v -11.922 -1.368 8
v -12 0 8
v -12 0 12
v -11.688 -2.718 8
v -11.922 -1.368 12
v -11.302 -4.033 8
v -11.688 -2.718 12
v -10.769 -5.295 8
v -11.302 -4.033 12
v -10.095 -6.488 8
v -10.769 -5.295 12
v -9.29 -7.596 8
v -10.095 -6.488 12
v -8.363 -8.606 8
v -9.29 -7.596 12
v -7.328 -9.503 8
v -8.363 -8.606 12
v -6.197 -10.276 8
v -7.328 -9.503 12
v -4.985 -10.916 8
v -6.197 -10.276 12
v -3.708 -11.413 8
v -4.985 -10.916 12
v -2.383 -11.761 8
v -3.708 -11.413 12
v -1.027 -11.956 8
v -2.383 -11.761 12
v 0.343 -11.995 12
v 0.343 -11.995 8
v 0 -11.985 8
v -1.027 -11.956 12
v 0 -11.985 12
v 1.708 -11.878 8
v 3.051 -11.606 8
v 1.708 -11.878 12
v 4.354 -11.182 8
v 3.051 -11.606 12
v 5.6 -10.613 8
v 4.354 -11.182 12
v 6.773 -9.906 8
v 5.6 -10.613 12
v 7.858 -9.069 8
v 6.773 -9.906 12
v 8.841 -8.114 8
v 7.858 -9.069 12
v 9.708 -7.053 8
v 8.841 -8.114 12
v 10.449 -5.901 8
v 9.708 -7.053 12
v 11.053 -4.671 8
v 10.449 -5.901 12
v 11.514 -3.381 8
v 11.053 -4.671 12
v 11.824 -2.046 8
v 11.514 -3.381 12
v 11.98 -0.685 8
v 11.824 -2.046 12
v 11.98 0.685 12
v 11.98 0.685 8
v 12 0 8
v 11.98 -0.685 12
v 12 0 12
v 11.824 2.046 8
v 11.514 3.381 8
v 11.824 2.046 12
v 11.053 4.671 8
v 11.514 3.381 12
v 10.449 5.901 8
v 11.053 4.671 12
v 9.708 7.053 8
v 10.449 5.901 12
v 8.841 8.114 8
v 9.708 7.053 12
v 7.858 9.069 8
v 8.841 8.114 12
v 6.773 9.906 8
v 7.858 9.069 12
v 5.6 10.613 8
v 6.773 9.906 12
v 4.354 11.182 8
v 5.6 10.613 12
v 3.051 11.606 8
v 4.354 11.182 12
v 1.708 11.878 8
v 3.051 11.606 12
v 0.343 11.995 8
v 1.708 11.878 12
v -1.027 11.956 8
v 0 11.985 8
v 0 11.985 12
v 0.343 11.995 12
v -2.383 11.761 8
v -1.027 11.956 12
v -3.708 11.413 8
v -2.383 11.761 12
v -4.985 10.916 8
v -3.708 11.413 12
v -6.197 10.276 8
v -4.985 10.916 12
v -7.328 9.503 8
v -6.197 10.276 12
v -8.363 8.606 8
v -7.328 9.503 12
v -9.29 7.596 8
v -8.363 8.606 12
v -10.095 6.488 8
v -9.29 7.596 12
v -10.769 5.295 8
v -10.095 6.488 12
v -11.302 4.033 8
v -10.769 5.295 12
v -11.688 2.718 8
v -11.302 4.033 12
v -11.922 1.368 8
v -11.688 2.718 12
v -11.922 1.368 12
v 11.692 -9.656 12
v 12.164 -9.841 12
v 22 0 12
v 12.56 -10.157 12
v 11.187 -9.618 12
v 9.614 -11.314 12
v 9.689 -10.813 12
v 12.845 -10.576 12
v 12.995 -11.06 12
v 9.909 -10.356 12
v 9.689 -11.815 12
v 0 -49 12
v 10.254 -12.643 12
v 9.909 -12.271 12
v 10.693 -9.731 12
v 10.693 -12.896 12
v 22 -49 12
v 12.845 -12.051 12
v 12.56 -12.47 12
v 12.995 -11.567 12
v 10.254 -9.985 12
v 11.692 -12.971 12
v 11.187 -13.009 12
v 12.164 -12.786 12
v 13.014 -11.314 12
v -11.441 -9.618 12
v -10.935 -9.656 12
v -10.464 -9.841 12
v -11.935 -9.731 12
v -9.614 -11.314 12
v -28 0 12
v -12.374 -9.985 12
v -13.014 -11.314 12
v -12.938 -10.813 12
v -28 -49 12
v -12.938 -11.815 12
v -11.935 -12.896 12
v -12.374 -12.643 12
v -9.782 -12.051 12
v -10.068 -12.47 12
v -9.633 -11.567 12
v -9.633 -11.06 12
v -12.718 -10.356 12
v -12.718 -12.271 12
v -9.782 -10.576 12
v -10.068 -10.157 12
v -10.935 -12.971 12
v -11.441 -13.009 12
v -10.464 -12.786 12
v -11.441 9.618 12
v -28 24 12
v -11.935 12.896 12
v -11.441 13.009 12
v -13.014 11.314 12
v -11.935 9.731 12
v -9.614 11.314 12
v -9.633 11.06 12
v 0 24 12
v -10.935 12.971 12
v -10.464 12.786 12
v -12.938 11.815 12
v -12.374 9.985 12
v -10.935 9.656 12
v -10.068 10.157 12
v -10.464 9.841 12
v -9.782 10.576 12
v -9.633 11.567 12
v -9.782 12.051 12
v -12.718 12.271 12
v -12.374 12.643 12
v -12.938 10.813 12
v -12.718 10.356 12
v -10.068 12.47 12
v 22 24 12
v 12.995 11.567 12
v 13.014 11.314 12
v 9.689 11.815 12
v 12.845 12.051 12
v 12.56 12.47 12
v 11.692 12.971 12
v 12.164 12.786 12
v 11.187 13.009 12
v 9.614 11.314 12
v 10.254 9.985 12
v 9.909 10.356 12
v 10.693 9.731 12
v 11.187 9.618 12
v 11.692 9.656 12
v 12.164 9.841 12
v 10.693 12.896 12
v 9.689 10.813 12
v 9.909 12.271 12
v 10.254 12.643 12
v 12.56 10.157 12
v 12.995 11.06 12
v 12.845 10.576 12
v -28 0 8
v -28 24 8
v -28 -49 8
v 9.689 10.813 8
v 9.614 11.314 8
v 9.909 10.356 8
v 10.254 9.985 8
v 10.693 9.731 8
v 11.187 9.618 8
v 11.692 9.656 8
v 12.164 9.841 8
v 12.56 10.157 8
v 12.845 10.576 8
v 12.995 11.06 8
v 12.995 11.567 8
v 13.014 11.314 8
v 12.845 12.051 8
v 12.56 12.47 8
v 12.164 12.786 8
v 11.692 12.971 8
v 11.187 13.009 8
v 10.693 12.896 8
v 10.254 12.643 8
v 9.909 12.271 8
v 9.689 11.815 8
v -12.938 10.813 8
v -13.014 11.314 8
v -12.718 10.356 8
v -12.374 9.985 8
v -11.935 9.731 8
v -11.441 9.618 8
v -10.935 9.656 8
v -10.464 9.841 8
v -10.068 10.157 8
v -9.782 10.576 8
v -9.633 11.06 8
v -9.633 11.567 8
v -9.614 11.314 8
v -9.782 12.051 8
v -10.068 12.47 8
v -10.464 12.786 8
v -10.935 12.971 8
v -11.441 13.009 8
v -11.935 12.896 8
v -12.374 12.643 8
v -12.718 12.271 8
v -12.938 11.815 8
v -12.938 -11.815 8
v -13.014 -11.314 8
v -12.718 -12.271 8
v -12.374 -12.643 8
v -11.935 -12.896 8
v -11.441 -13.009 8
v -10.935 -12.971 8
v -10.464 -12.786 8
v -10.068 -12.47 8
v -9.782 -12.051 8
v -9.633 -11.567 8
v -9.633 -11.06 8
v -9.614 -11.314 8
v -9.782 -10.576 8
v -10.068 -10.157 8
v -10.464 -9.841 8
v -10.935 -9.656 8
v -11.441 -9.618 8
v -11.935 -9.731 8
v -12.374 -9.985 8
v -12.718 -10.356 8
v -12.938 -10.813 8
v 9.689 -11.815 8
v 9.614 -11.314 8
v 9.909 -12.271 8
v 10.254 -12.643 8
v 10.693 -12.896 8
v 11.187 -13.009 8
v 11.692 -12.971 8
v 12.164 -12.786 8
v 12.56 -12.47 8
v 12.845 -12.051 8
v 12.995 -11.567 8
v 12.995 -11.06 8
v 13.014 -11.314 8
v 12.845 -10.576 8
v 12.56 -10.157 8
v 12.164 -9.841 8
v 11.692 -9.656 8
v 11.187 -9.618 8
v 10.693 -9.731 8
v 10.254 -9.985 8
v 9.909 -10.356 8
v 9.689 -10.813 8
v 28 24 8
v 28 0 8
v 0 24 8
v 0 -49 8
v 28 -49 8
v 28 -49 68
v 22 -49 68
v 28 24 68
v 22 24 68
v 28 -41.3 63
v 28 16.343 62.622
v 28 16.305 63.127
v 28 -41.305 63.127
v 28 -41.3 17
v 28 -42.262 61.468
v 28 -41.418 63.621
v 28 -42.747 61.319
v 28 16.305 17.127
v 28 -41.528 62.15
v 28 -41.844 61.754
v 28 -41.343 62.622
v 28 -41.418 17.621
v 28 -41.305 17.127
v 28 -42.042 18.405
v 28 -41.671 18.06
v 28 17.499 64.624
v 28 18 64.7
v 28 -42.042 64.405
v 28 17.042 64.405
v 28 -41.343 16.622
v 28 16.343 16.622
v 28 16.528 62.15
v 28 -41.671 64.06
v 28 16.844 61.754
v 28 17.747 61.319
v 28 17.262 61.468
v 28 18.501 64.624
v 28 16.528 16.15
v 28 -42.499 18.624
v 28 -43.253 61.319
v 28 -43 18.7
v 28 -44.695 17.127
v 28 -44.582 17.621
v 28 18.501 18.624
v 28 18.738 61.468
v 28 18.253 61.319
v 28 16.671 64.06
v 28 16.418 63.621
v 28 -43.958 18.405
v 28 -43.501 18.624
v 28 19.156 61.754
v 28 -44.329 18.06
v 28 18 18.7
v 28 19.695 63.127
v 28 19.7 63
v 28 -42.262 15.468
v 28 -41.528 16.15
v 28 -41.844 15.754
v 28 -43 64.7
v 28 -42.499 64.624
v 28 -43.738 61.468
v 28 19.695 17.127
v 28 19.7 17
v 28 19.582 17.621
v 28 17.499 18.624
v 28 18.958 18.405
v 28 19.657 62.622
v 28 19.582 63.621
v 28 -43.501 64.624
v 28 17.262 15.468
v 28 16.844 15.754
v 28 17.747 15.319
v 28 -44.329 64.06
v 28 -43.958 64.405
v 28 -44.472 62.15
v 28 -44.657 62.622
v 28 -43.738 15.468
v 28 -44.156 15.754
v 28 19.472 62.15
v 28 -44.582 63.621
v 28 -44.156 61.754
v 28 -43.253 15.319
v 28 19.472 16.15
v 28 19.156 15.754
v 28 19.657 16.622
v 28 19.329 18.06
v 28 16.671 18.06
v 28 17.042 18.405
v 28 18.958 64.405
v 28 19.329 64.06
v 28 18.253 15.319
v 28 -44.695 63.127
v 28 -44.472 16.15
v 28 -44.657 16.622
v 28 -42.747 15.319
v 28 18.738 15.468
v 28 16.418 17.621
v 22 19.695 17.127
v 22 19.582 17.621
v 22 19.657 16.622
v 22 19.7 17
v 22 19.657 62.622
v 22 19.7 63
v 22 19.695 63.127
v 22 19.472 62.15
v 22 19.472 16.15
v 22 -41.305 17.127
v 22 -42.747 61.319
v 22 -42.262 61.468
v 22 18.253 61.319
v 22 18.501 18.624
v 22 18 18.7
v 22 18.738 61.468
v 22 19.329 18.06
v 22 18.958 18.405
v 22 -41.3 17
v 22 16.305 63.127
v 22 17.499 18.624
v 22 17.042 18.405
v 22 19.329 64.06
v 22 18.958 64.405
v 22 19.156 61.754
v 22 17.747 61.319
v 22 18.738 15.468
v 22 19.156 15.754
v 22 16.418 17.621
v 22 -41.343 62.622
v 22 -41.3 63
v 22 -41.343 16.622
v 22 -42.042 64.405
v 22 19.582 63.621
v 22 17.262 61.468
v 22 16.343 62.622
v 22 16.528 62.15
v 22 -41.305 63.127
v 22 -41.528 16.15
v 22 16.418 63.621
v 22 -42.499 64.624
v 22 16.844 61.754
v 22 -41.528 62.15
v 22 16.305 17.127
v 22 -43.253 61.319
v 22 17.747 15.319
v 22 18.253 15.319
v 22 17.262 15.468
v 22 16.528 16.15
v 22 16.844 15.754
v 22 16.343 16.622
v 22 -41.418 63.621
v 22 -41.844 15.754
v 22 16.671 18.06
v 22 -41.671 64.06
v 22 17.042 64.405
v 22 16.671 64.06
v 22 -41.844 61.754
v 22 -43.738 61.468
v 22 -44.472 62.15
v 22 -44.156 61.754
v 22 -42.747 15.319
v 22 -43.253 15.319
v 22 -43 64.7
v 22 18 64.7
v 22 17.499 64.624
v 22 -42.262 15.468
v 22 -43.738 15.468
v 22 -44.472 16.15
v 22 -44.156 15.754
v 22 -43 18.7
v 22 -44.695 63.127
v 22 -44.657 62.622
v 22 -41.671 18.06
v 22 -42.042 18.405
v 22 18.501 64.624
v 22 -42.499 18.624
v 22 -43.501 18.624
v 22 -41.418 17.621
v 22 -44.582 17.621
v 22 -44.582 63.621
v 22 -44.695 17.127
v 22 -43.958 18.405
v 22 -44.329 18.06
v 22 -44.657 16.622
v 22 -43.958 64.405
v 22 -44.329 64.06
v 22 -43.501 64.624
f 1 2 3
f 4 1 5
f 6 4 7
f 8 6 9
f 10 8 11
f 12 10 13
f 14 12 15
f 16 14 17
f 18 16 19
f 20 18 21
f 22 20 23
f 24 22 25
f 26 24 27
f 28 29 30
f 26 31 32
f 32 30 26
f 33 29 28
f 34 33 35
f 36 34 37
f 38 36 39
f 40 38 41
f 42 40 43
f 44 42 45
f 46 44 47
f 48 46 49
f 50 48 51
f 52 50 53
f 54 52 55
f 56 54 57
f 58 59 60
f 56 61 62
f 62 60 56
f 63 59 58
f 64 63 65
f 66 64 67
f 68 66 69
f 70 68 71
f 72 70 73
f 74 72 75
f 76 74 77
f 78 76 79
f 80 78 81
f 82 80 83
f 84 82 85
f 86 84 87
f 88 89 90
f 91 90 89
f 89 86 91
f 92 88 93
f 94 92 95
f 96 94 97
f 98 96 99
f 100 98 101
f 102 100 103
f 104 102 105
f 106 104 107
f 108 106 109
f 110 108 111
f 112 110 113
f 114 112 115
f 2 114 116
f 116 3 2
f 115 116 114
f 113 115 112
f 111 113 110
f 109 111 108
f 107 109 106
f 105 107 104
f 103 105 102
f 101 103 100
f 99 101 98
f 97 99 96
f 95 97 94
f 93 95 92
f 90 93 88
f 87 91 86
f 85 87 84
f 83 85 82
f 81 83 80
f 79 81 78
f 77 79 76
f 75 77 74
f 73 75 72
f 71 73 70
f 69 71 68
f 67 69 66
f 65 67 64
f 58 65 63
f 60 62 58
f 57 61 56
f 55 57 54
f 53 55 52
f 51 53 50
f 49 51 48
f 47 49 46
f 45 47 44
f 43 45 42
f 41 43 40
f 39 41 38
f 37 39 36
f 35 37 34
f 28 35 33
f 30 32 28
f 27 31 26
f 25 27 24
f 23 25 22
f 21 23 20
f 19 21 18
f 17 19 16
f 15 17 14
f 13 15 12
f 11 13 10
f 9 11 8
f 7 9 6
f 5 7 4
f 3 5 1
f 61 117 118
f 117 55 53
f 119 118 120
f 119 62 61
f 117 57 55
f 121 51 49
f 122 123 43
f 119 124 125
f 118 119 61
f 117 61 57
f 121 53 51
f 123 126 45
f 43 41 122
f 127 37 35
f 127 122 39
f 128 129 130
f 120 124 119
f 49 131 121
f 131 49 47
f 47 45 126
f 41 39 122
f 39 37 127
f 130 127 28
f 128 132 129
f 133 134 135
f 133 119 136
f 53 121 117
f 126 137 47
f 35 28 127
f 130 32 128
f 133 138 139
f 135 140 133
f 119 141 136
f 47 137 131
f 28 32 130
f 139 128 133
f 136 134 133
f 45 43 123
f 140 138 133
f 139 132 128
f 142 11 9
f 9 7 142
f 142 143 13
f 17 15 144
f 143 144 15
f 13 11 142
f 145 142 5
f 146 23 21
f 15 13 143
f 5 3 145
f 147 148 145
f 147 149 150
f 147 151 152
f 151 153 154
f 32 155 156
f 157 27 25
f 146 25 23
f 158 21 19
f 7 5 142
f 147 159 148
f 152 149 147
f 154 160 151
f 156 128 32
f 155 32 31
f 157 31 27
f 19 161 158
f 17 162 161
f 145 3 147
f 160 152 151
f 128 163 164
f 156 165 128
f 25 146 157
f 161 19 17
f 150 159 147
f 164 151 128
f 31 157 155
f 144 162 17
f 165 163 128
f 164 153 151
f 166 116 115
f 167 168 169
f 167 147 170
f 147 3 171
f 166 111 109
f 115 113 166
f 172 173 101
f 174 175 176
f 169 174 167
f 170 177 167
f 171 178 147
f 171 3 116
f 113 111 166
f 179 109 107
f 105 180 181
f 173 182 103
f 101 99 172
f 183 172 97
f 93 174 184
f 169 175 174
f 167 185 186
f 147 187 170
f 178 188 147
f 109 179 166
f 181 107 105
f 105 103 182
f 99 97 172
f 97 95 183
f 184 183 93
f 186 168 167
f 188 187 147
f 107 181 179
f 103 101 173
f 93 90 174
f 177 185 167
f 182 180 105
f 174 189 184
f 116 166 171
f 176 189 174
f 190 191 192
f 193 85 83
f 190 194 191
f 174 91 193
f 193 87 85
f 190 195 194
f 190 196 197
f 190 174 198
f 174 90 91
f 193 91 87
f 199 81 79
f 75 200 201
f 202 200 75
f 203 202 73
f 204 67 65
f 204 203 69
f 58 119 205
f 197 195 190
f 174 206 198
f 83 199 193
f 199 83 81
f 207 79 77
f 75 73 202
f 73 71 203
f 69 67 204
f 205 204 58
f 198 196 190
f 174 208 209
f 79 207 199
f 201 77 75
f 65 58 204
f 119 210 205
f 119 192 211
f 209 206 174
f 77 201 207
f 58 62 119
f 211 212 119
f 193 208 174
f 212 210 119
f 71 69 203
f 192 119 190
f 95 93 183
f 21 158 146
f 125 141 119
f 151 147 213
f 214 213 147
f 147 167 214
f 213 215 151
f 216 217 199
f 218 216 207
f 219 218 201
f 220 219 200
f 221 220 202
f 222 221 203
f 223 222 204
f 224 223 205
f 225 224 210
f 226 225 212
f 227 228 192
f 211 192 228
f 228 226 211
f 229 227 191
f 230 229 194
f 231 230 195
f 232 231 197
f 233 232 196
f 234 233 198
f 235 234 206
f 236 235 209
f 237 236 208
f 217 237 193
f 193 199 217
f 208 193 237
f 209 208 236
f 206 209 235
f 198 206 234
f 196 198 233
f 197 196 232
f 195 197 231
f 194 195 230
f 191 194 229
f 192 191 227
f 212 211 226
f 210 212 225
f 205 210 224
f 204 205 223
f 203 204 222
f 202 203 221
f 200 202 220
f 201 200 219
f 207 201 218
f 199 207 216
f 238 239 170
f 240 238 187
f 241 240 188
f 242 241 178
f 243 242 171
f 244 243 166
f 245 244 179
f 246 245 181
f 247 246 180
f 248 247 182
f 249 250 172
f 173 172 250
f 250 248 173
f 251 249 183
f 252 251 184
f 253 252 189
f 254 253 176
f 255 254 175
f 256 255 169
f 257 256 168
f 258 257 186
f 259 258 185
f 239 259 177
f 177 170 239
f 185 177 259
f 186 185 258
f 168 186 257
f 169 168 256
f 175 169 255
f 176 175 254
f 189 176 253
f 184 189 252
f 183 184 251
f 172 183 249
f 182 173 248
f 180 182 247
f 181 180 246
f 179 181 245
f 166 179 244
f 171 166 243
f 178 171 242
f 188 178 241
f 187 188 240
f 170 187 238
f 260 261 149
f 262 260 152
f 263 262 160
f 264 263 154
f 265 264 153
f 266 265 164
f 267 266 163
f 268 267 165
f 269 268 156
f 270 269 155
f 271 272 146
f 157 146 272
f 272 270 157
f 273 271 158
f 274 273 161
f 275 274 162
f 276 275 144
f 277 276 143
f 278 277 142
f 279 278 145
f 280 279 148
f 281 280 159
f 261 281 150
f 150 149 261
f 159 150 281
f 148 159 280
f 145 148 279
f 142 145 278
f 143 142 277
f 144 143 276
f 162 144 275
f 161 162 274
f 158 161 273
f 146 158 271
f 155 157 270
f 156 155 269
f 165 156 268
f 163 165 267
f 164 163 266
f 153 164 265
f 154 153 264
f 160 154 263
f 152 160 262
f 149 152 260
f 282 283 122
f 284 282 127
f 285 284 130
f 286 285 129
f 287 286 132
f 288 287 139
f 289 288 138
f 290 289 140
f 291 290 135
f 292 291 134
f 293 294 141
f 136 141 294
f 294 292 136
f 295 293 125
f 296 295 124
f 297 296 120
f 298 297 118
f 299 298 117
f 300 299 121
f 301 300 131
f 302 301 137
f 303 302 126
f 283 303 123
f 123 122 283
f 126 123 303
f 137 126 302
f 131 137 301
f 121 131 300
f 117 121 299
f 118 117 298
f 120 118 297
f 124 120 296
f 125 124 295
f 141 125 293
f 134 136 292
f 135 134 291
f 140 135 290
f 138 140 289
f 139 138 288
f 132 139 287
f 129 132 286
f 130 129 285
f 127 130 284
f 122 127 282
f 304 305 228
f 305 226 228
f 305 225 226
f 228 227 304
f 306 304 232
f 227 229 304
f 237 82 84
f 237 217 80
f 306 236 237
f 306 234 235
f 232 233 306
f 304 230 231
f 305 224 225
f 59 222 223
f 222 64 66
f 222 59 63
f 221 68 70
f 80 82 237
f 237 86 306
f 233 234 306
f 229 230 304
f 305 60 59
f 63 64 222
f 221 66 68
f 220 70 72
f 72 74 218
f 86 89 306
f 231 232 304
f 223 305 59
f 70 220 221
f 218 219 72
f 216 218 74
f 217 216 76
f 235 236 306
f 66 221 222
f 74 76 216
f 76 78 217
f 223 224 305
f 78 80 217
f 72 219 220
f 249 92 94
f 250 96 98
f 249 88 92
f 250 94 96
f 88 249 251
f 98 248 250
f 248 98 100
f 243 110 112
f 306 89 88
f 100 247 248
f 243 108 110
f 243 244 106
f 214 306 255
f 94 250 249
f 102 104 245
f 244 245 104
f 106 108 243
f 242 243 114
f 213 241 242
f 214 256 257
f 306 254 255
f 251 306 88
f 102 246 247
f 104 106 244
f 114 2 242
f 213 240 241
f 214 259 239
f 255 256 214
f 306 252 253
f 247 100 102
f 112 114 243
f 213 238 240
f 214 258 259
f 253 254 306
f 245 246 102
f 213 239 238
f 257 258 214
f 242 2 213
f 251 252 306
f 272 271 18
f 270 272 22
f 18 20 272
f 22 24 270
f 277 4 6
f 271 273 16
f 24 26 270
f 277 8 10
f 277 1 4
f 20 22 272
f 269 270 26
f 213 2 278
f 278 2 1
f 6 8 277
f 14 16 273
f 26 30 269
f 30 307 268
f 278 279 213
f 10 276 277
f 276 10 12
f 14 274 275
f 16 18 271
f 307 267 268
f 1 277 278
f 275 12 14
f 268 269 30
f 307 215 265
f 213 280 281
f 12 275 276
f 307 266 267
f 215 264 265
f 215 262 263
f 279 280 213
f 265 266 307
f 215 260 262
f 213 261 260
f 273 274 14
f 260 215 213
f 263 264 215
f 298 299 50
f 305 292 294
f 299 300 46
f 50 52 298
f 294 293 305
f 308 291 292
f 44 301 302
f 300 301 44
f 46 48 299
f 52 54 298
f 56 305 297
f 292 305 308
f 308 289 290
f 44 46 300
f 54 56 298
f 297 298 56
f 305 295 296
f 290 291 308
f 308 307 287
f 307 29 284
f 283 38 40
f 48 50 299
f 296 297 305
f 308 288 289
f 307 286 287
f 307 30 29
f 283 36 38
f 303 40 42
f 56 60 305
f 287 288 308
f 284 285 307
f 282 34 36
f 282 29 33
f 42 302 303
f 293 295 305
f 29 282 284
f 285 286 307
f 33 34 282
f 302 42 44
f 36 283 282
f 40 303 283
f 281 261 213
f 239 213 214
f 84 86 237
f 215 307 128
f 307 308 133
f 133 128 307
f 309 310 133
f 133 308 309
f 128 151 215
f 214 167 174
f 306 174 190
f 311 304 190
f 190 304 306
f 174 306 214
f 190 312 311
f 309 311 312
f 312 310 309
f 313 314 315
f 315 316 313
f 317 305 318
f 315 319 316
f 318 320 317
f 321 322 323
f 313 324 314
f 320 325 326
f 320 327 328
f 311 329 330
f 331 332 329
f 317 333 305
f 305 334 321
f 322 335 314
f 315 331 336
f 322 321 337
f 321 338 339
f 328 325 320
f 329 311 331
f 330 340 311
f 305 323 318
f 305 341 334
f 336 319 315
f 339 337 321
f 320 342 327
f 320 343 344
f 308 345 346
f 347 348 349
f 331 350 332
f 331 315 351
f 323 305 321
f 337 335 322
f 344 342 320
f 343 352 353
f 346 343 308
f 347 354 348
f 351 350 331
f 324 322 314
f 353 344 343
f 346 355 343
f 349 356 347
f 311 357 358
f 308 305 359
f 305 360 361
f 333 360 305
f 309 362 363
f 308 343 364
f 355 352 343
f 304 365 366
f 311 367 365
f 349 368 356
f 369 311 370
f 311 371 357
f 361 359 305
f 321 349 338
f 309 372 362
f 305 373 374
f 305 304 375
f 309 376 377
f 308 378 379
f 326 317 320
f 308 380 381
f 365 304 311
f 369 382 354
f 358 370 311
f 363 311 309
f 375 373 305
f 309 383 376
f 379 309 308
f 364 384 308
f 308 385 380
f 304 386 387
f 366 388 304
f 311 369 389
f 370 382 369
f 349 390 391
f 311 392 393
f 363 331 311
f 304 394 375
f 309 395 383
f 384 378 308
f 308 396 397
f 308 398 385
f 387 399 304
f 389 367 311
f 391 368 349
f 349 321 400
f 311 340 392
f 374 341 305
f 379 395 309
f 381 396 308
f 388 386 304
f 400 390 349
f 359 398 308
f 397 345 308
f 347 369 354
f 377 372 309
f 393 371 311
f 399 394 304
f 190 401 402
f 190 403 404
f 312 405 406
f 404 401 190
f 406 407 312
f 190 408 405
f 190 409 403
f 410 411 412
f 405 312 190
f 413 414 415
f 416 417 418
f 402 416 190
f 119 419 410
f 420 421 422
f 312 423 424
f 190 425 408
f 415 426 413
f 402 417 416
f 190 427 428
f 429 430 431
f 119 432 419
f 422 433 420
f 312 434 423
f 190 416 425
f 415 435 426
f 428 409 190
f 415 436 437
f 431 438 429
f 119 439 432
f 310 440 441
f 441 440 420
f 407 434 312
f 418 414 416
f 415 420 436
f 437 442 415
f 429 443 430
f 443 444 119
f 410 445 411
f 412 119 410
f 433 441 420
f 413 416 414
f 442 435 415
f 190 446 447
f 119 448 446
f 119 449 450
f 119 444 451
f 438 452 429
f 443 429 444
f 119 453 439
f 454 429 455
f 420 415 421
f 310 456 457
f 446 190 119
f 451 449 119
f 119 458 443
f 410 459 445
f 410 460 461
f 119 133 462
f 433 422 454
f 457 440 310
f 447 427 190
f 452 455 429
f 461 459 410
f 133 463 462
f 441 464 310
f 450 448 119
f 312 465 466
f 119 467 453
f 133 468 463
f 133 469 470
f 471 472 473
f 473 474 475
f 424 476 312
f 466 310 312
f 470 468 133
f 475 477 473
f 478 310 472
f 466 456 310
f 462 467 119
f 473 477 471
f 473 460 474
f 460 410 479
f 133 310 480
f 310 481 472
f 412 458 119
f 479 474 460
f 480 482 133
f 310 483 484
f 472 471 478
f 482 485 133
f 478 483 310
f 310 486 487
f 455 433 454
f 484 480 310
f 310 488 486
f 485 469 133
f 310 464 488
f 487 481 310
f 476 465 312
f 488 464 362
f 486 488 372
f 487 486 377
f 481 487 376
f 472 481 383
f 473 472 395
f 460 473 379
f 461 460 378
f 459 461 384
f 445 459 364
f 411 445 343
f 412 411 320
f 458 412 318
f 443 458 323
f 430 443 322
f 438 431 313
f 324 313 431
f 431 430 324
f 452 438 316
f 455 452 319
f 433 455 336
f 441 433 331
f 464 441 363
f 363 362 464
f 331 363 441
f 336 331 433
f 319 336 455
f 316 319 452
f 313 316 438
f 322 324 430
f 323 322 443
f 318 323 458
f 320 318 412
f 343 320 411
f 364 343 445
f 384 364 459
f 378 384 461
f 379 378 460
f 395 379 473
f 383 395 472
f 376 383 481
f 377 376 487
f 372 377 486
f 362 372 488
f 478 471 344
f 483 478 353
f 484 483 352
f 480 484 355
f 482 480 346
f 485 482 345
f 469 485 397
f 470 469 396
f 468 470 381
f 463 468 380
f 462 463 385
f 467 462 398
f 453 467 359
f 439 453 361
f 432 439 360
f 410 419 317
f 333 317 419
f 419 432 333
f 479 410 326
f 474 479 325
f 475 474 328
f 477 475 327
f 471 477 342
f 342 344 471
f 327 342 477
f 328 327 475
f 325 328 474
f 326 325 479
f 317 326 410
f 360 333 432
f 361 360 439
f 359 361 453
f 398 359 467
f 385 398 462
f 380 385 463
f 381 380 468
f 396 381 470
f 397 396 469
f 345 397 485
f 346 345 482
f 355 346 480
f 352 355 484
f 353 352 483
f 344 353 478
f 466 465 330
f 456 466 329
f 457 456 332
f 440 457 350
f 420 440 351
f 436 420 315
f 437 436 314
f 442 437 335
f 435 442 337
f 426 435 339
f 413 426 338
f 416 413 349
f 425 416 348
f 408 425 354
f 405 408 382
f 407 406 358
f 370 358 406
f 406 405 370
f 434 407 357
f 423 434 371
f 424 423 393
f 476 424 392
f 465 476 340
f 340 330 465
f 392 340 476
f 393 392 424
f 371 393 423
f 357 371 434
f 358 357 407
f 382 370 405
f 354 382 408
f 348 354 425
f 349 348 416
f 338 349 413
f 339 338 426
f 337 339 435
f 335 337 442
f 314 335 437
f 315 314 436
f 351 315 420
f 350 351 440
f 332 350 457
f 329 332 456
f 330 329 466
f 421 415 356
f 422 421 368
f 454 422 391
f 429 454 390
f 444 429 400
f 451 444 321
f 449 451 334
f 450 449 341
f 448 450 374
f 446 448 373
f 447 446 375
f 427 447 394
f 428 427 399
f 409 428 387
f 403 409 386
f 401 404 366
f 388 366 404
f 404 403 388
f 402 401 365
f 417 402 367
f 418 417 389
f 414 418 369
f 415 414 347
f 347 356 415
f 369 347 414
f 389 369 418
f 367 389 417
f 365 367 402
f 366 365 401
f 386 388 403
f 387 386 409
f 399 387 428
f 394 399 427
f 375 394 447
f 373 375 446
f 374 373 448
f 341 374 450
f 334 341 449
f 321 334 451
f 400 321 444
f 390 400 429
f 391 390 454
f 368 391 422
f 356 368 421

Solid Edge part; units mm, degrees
sketch "Sketch1" plane through (0, 0, 8) normal (0, 0, 1) x (1, 0, 0)
  line L0 (-28, -49) -> (28, -49)
  line L1 (28, -49) -> (28, 24)
  line L2 (28, 24) -> (-28, 24)
  line L3 (-28, 24) -> (-28, -49)
  circle A0 centre (0, 0) radius 12
  circle A1 centre (11.3137, 11.3137) radius 1.7
  circle A2 centre (-11.3137, 11.3137) radius 1.7
  circle A3 centre (-11.3137, -11.3137) radius 1.7
  circle A4 centre (11.3137, -11.3137) radius 1.7
extrude "ExtrudedProtrusion_1" add sketch "Sketch1" along normal blind 4
sketch "Sketch2" plane through (0, 0, 12) normal (0, 0, 1) x (1, 0, 0)
  line L0 (22, -49) -> (28, -49)
  line L1 (28, -49) -> (28, 24)
  line L2 (28, 24) -> (22, 24)
  line L3 (22, 24) -> (22, -49)
extrude "ExtrudedProtrusion_2" add sketch "Sketch2" along normal blind 56
sketch "Sketch3" plane through (22, 0, 0) normal (1, 0, 0) x (0, 1, 0)
  circle A0 centre (-43, 63) radius 1.7
  circle A1 centre (-43, 17) radius 1.7
  circle A2 centre (18, 63) radius 1.7
  circle A3 centre (18, 17) radius 1.7
extrude "ExtrudedCutout_1" cut sketch "Sketch3" along normal blind 6
